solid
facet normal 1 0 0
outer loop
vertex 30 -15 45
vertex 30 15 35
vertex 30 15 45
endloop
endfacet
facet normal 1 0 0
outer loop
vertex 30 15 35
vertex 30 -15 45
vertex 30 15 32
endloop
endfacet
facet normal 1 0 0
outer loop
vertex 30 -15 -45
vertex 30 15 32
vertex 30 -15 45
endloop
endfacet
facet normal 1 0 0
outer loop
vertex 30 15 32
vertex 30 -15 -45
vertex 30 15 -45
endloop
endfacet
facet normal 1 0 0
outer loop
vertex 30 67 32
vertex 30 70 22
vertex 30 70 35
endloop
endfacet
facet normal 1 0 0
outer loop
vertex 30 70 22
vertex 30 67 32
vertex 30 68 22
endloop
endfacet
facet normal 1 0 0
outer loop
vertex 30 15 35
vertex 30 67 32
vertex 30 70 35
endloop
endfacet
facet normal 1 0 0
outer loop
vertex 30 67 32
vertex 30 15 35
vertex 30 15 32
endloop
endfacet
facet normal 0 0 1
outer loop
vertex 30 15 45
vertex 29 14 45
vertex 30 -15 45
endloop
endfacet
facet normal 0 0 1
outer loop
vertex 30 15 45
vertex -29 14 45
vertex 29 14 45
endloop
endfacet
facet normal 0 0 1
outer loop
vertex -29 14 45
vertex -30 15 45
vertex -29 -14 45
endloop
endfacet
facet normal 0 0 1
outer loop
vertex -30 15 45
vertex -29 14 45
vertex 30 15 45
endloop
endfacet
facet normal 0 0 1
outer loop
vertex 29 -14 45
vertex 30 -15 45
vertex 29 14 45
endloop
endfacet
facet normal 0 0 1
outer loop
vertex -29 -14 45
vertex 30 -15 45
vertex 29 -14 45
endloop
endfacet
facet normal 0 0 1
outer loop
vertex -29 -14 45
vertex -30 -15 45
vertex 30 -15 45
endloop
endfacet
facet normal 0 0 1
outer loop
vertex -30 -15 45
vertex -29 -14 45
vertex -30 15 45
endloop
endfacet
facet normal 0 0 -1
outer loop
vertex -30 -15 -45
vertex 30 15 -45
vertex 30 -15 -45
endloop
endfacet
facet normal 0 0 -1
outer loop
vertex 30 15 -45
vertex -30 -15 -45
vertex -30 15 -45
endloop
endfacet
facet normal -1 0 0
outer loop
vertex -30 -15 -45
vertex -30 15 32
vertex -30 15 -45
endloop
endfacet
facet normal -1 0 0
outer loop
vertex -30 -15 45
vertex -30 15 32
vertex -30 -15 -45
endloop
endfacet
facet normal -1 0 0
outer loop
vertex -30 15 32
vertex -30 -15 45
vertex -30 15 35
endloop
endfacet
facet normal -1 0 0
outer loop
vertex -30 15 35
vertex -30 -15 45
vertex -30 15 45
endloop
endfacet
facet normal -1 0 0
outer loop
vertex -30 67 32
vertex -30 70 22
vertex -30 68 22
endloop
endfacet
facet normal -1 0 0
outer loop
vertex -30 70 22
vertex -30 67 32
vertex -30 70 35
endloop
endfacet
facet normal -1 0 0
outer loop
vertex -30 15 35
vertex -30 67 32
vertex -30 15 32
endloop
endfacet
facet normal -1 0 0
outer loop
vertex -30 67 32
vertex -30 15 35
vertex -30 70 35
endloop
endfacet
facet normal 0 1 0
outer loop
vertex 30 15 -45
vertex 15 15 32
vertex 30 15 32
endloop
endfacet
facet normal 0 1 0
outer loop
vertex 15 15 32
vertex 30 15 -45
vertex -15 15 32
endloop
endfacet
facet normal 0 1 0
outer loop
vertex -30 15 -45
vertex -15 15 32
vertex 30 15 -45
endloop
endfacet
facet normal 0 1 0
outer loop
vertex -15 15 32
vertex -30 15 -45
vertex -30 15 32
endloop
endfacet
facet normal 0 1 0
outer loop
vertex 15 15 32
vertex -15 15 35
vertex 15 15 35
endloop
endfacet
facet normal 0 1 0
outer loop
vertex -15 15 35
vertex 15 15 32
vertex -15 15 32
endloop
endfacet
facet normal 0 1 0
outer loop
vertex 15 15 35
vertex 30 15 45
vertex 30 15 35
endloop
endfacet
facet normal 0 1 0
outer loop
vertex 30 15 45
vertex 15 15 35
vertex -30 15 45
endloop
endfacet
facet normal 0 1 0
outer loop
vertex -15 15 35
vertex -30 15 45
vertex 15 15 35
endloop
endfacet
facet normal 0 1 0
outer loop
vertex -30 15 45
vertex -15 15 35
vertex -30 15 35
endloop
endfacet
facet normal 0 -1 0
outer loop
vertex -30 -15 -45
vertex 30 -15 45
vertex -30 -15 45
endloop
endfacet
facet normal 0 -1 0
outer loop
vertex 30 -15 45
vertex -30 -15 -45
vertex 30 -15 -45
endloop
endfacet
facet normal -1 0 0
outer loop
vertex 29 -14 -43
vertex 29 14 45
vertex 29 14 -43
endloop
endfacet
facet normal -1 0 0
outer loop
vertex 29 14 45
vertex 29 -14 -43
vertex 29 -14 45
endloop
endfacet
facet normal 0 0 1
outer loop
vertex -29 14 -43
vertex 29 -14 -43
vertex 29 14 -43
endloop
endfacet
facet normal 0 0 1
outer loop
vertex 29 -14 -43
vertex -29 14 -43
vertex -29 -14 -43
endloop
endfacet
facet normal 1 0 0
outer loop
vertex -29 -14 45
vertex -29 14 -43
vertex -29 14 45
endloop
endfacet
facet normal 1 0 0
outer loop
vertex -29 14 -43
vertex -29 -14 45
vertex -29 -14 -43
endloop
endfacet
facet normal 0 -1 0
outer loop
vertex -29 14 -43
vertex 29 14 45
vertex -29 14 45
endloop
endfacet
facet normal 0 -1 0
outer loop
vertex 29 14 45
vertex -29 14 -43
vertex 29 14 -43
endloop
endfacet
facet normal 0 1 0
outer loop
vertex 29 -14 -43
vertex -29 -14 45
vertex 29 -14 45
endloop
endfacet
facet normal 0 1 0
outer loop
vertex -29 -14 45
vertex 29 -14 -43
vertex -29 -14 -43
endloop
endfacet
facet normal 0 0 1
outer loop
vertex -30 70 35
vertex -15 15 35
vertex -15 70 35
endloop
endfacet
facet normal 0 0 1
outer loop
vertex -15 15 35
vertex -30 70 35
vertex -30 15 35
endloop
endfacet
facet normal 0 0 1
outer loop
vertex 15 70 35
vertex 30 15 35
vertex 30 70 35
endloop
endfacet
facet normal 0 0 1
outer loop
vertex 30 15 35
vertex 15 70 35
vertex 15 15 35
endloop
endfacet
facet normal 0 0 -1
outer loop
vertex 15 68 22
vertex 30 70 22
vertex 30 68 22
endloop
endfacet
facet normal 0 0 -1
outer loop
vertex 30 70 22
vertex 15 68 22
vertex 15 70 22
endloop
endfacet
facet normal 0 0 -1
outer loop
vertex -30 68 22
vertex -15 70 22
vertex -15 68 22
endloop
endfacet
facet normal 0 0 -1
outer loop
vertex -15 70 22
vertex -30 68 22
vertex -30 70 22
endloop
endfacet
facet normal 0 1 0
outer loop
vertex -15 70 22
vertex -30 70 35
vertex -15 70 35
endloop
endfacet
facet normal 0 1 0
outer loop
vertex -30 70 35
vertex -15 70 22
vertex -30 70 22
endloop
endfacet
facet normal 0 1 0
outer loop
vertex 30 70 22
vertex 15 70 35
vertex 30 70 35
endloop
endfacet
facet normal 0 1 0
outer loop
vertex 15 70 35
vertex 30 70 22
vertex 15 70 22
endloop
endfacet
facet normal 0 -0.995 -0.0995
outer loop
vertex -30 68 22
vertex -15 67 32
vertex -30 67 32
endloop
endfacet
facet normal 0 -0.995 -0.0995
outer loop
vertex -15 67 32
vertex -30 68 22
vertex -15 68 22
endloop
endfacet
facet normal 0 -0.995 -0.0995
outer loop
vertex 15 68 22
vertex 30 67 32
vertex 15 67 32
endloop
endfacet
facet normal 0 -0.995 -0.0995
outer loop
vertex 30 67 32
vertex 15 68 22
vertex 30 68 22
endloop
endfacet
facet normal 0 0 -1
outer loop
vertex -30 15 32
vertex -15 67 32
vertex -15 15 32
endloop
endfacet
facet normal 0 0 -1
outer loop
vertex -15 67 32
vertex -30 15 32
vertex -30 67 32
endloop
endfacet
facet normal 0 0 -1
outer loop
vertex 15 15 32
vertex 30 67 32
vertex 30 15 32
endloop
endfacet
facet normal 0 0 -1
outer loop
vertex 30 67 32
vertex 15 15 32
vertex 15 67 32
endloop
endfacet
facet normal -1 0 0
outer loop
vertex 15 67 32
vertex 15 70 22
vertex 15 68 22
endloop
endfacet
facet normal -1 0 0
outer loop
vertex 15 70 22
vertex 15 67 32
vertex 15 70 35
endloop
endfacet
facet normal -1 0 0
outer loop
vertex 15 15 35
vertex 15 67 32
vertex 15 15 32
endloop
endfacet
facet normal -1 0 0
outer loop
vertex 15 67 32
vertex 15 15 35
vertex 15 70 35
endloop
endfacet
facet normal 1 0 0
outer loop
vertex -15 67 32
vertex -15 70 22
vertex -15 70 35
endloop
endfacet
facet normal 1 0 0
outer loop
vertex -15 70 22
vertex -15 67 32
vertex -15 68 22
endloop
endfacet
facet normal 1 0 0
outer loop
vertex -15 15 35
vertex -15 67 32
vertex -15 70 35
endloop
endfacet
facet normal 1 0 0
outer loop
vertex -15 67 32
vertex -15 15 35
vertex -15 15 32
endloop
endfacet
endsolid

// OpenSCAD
height = 90;
depth = 30;
width = 60;
wallThickness = 1;
bottomThickness = 2;

difference(){
	cube([width, depth, height], center=true);
	translate([0, 0, bottomThickness])
		cube([width-2*wallThickness, 30-2*wallThickness, height], center=true);
}

translate([0, 0, height/2-15])
	difference(){
		clipInnerHeight = 10;
		clipTopThickness = 3;
		clipOutterHeight = clipInnerHeight+clipTopThickness;
		clipOutterDepth = 55;
		
		translate([0, depth/2+clipOutterDepth/2, -clipTopThickness/2])
			cube([width, clipOutterDepth, clipOutterHeight], center=true);
		
		#translate([-width/2, depth/2, -clipTopThickness]){
			hull(){
				translate([0, 0, clipInnerHeight/2])
					cube([width, 52, 1e-4]);
				translate([0, 0, -clipInnerHeight/2])
					cube([width, 53, 1e-4]);
			}
		}
			
		#translate([0, depth/2+clipOutterDepth/2, -clipTopThickness/2])
			cube([width/2, clipOutterDepth, clipOutterHeight], center=true);
	}
